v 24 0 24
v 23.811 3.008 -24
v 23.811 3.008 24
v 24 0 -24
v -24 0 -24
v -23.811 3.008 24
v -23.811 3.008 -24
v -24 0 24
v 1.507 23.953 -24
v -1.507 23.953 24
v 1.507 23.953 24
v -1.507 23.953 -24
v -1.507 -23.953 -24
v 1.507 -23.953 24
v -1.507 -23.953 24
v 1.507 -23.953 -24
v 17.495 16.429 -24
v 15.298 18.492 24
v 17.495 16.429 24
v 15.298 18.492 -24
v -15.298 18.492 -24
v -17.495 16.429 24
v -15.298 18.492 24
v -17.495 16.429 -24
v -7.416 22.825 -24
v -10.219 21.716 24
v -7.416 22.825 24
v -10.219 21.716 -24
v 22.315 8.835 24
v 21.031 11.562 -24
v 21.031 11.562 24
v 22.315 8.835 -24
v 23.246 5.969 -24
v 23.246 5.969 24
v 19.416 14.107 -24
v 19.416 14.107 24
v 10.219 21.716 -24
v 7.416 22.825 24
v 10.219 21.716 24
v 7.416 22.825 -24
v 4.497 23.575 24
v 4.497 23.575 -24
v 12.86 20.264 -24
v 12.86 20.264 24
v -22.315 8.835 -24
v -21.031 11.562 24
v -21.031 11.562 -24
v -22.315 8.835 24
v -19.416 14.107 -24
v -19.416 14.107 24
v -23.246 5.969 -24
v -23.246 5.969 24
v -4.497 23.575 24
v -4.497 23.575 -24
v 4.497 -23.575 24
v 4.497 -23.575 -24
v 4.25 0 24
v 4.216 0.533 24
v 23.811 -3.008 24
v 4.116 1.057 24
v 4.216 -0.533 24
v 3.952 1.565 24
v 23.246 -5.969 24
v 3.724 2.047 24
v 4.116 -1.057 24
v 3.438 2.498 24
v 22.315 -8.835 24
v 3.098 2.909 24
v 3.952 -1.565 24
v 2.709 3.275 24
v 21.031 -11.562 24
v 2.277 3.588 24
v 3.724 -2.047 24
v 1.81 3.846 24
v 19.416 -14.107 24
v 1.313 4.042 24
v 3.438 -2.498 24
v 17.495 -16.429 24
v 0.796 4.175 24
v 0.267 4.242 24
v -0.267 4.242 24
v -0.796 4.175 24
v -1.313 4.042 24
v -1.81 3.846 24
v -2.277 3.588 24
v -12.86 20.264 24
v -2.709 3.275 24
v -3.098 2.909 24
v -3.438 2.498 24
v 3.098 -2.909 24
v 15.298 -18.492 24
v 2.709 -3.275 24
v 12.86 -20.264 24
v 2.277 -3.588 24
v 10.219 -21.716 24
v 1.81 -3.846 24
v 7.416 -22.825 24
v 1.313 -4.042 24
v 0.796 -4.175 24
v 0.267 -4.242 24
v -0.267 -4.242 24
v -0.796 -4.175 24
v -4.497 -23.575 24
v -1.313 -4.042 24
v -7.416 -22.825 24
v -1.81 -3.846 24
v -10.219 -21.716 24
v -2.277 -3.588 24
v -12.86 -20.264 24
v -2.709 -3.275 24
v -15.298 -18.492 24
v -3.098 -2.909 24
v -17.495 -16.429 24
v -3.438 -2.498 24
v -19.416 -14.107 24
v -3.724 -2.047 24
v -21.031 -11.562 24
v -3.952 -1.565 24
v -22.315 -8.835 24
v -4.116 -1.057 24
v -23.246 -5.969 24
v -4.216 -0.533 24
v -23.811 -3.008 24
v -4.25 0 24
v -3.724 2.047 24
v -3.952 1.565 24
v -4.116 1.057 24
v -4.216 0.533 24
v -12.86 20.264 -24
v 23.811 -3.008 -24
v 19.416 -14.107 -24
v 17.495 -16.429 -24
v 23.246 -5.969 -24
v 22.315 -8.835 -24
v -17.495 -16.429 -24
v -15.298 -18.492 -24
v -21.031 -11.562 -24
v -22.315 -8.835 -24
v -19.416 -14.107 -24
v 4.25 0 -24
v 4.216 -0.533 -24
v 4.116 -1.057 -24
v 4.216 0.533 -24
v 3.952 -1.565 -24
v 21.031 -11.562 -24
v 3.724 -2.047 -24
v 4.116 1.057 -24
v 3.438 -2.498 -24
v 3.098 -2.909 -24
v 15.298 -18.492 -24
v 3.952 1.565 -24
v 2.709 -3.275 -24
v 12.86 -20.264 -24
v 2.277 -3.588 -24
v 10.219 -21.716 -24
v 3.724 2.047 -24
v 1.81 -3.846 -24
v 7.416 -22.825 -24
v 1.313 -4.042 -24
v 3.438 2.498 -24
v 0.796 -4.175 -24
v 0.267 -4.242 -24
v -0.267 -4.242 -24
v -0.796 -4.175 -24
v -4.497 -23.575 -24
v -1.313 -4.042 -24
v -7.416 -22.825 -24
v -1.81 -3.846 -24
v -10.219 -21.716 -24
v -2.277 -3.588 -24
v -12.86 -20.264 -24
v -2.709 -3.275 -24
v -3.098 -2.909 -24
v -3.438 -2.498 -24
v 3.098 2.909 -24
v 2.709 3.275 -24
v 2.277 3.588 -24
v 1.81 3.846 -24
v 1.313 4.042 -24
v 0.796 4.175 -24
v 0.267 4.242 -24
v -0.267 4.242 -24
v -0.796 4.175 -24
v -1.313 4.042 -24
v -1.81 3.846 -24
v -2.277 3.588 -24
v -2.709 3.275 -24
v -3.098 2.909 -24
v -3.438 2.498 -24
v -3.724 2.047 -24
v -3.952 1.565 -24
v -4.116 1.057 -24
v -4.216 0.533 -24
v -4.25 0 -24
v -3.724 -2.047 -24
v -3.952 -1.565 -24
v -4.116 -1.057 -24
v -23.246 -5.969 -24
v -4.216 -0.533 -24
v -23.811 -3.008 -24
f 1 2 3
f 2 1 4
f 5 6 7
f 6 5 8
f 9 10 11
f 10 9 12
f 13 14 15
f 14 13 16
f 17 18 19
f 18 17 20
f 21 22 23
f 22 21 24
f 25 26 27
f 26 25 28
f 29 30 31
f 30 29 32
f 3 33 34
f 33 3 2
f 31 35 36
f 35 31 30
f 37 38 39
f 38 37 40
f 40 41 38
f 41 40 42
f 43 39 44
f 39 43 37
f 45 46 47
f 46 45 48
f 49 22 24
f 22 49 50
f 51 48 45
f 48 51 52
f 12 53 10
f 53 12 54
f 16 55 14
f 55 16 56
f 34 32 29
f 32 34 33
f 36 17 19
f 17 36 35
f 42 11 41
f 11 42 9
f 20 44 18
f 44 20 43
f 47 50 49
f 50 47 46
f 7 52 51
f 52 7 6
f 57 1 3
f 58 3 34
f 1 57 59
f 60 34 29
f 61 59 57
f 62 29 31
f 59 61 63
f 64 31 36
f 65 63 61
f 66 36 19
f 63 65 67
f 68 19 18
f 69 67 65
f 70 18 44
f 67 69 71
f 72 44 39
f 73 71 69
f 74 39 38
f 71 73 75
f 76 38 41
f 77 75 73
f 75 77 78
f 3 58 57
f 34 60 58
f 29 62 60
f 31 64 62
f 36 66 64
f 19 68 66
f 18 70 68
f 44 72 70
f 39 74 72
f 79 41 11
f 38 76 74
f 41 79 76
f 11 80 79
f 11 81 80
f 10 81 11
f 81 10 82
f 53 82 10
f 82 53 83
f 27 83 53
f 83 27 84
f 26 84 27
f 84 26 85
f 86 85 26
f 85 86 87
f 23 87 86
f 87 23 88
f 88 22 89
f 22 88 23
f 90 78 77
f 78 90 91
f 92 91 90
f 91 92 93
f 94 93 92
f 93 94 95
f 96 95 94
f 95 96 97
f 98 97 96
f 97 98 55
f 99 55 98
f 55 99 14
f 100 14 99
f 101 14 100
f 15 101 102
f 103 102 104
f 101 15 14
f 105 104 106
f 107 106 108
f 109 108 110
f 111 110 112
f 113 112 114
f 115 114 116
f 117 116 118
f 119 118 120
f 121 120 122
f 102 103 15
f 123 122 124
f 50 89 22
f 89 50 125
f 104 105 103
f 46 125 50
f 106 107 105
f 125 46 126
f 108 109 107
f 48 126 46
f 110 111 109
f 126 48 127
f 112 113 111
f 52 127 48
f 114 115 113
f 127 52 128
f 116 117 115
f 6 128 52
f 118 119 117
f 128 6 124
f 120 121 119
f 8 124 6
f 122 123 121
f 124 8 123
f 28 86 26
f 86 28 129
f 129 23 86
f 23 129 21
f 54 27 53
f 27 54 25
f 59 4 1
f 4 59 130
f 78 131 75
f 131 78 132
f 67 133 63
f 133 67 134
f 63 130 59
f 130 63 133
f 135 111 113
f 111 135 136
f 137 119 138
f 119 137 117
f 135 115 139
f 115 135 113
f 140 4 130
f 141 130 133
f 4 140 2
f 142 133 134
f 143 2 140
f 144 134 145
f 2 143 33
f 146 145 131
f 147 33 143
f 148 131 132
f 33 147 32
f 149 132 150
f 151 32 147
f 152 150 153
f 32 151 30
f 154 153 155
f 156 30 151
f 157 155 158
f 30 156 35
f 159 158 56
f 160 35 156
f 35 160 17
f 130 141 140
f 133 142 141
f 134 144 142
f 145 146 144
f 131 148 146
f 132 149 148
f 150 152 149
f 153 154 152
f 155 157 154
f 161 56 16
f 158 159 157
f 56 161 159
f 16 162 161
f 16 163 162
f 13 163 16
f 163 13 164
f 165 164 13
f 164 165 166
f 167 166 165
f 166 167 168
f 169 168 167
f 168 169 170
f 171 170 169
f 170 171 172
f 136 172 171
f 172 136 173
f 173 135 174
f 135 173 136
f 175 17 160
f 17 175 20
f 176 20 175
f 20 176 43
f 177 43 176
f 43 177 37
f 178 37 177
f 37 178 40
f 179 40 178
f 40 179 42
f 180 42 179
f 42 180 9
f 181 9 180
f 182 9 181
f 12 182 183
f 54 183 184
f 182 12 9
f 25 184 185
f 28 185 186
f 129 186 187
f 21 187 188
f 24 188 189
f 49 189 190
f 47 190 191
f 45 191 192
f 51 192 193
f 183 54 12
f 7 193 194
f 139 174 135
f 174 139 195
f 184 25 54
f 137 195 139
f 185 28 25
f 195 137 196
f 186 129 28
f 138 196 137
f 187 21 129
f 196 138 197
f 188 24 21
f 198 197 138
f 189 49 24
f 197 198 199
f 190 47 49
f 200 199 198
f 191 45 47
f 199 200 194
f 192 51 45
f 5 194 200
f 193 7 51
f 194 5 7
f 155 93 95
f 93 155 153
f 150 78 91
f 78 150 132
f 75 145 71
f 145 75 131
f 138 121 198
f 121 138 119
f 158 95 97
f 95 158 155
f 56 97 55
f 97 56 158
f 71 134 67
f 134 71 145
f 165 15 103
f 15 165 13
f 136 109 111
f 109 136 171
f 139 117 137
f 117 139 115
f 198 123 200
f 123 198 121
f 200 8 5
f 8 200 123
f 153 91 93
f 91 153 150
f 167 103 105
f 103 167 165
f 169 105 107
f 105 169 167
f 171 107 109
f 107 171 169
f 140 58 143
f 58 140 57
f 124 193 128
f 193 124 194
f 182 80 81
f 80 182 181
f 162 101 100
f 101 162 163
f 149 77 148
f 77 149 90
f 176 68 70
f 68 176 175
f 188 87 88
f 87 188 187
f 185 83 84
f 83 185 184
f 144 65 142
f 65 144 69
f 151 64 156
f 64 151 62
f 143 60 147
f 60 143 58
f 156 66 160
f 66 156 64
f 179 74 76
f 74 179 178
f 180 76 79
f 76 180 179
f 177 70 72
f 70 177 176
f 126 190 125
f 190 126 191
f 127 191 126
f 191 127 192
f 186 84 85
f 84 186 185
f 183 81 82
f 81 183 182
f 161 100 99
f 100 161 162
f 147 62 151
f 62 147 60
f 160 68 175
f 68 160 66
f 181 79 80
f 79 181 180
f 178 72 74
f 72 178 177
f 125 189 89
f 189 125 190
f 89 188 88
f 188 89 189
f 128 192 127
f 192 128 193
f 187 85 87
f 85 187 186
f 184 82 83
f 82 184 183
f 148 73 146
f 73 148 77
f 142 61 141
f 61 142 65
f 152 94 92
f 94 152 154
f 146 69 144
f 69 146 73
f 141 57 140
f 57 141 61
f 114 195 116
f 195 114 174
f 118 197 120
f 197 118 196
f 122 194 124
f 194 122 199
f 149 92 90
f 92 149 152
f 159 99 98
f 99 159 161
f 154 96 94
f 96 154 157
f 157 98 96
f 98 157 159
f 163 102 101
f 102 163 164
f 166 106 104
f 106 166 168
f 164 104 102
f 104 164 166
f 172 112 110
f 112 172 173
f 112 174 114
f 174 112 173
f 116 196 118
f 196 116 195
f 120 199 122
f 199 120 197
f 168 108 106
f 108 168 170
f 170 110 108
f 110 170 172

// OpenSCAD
$fn = 50;


difference() {
	union() {
		translate(v = [0, 0, -24.0000000000]) {
			cylinder(h = 48, r = 24.0000000000);
		}
	}
	union() {
		translate(v = [0, 0, -100.0000000000]) {
			cylinder(h = 200, r = 4.2500000000);
		}
	}
}
